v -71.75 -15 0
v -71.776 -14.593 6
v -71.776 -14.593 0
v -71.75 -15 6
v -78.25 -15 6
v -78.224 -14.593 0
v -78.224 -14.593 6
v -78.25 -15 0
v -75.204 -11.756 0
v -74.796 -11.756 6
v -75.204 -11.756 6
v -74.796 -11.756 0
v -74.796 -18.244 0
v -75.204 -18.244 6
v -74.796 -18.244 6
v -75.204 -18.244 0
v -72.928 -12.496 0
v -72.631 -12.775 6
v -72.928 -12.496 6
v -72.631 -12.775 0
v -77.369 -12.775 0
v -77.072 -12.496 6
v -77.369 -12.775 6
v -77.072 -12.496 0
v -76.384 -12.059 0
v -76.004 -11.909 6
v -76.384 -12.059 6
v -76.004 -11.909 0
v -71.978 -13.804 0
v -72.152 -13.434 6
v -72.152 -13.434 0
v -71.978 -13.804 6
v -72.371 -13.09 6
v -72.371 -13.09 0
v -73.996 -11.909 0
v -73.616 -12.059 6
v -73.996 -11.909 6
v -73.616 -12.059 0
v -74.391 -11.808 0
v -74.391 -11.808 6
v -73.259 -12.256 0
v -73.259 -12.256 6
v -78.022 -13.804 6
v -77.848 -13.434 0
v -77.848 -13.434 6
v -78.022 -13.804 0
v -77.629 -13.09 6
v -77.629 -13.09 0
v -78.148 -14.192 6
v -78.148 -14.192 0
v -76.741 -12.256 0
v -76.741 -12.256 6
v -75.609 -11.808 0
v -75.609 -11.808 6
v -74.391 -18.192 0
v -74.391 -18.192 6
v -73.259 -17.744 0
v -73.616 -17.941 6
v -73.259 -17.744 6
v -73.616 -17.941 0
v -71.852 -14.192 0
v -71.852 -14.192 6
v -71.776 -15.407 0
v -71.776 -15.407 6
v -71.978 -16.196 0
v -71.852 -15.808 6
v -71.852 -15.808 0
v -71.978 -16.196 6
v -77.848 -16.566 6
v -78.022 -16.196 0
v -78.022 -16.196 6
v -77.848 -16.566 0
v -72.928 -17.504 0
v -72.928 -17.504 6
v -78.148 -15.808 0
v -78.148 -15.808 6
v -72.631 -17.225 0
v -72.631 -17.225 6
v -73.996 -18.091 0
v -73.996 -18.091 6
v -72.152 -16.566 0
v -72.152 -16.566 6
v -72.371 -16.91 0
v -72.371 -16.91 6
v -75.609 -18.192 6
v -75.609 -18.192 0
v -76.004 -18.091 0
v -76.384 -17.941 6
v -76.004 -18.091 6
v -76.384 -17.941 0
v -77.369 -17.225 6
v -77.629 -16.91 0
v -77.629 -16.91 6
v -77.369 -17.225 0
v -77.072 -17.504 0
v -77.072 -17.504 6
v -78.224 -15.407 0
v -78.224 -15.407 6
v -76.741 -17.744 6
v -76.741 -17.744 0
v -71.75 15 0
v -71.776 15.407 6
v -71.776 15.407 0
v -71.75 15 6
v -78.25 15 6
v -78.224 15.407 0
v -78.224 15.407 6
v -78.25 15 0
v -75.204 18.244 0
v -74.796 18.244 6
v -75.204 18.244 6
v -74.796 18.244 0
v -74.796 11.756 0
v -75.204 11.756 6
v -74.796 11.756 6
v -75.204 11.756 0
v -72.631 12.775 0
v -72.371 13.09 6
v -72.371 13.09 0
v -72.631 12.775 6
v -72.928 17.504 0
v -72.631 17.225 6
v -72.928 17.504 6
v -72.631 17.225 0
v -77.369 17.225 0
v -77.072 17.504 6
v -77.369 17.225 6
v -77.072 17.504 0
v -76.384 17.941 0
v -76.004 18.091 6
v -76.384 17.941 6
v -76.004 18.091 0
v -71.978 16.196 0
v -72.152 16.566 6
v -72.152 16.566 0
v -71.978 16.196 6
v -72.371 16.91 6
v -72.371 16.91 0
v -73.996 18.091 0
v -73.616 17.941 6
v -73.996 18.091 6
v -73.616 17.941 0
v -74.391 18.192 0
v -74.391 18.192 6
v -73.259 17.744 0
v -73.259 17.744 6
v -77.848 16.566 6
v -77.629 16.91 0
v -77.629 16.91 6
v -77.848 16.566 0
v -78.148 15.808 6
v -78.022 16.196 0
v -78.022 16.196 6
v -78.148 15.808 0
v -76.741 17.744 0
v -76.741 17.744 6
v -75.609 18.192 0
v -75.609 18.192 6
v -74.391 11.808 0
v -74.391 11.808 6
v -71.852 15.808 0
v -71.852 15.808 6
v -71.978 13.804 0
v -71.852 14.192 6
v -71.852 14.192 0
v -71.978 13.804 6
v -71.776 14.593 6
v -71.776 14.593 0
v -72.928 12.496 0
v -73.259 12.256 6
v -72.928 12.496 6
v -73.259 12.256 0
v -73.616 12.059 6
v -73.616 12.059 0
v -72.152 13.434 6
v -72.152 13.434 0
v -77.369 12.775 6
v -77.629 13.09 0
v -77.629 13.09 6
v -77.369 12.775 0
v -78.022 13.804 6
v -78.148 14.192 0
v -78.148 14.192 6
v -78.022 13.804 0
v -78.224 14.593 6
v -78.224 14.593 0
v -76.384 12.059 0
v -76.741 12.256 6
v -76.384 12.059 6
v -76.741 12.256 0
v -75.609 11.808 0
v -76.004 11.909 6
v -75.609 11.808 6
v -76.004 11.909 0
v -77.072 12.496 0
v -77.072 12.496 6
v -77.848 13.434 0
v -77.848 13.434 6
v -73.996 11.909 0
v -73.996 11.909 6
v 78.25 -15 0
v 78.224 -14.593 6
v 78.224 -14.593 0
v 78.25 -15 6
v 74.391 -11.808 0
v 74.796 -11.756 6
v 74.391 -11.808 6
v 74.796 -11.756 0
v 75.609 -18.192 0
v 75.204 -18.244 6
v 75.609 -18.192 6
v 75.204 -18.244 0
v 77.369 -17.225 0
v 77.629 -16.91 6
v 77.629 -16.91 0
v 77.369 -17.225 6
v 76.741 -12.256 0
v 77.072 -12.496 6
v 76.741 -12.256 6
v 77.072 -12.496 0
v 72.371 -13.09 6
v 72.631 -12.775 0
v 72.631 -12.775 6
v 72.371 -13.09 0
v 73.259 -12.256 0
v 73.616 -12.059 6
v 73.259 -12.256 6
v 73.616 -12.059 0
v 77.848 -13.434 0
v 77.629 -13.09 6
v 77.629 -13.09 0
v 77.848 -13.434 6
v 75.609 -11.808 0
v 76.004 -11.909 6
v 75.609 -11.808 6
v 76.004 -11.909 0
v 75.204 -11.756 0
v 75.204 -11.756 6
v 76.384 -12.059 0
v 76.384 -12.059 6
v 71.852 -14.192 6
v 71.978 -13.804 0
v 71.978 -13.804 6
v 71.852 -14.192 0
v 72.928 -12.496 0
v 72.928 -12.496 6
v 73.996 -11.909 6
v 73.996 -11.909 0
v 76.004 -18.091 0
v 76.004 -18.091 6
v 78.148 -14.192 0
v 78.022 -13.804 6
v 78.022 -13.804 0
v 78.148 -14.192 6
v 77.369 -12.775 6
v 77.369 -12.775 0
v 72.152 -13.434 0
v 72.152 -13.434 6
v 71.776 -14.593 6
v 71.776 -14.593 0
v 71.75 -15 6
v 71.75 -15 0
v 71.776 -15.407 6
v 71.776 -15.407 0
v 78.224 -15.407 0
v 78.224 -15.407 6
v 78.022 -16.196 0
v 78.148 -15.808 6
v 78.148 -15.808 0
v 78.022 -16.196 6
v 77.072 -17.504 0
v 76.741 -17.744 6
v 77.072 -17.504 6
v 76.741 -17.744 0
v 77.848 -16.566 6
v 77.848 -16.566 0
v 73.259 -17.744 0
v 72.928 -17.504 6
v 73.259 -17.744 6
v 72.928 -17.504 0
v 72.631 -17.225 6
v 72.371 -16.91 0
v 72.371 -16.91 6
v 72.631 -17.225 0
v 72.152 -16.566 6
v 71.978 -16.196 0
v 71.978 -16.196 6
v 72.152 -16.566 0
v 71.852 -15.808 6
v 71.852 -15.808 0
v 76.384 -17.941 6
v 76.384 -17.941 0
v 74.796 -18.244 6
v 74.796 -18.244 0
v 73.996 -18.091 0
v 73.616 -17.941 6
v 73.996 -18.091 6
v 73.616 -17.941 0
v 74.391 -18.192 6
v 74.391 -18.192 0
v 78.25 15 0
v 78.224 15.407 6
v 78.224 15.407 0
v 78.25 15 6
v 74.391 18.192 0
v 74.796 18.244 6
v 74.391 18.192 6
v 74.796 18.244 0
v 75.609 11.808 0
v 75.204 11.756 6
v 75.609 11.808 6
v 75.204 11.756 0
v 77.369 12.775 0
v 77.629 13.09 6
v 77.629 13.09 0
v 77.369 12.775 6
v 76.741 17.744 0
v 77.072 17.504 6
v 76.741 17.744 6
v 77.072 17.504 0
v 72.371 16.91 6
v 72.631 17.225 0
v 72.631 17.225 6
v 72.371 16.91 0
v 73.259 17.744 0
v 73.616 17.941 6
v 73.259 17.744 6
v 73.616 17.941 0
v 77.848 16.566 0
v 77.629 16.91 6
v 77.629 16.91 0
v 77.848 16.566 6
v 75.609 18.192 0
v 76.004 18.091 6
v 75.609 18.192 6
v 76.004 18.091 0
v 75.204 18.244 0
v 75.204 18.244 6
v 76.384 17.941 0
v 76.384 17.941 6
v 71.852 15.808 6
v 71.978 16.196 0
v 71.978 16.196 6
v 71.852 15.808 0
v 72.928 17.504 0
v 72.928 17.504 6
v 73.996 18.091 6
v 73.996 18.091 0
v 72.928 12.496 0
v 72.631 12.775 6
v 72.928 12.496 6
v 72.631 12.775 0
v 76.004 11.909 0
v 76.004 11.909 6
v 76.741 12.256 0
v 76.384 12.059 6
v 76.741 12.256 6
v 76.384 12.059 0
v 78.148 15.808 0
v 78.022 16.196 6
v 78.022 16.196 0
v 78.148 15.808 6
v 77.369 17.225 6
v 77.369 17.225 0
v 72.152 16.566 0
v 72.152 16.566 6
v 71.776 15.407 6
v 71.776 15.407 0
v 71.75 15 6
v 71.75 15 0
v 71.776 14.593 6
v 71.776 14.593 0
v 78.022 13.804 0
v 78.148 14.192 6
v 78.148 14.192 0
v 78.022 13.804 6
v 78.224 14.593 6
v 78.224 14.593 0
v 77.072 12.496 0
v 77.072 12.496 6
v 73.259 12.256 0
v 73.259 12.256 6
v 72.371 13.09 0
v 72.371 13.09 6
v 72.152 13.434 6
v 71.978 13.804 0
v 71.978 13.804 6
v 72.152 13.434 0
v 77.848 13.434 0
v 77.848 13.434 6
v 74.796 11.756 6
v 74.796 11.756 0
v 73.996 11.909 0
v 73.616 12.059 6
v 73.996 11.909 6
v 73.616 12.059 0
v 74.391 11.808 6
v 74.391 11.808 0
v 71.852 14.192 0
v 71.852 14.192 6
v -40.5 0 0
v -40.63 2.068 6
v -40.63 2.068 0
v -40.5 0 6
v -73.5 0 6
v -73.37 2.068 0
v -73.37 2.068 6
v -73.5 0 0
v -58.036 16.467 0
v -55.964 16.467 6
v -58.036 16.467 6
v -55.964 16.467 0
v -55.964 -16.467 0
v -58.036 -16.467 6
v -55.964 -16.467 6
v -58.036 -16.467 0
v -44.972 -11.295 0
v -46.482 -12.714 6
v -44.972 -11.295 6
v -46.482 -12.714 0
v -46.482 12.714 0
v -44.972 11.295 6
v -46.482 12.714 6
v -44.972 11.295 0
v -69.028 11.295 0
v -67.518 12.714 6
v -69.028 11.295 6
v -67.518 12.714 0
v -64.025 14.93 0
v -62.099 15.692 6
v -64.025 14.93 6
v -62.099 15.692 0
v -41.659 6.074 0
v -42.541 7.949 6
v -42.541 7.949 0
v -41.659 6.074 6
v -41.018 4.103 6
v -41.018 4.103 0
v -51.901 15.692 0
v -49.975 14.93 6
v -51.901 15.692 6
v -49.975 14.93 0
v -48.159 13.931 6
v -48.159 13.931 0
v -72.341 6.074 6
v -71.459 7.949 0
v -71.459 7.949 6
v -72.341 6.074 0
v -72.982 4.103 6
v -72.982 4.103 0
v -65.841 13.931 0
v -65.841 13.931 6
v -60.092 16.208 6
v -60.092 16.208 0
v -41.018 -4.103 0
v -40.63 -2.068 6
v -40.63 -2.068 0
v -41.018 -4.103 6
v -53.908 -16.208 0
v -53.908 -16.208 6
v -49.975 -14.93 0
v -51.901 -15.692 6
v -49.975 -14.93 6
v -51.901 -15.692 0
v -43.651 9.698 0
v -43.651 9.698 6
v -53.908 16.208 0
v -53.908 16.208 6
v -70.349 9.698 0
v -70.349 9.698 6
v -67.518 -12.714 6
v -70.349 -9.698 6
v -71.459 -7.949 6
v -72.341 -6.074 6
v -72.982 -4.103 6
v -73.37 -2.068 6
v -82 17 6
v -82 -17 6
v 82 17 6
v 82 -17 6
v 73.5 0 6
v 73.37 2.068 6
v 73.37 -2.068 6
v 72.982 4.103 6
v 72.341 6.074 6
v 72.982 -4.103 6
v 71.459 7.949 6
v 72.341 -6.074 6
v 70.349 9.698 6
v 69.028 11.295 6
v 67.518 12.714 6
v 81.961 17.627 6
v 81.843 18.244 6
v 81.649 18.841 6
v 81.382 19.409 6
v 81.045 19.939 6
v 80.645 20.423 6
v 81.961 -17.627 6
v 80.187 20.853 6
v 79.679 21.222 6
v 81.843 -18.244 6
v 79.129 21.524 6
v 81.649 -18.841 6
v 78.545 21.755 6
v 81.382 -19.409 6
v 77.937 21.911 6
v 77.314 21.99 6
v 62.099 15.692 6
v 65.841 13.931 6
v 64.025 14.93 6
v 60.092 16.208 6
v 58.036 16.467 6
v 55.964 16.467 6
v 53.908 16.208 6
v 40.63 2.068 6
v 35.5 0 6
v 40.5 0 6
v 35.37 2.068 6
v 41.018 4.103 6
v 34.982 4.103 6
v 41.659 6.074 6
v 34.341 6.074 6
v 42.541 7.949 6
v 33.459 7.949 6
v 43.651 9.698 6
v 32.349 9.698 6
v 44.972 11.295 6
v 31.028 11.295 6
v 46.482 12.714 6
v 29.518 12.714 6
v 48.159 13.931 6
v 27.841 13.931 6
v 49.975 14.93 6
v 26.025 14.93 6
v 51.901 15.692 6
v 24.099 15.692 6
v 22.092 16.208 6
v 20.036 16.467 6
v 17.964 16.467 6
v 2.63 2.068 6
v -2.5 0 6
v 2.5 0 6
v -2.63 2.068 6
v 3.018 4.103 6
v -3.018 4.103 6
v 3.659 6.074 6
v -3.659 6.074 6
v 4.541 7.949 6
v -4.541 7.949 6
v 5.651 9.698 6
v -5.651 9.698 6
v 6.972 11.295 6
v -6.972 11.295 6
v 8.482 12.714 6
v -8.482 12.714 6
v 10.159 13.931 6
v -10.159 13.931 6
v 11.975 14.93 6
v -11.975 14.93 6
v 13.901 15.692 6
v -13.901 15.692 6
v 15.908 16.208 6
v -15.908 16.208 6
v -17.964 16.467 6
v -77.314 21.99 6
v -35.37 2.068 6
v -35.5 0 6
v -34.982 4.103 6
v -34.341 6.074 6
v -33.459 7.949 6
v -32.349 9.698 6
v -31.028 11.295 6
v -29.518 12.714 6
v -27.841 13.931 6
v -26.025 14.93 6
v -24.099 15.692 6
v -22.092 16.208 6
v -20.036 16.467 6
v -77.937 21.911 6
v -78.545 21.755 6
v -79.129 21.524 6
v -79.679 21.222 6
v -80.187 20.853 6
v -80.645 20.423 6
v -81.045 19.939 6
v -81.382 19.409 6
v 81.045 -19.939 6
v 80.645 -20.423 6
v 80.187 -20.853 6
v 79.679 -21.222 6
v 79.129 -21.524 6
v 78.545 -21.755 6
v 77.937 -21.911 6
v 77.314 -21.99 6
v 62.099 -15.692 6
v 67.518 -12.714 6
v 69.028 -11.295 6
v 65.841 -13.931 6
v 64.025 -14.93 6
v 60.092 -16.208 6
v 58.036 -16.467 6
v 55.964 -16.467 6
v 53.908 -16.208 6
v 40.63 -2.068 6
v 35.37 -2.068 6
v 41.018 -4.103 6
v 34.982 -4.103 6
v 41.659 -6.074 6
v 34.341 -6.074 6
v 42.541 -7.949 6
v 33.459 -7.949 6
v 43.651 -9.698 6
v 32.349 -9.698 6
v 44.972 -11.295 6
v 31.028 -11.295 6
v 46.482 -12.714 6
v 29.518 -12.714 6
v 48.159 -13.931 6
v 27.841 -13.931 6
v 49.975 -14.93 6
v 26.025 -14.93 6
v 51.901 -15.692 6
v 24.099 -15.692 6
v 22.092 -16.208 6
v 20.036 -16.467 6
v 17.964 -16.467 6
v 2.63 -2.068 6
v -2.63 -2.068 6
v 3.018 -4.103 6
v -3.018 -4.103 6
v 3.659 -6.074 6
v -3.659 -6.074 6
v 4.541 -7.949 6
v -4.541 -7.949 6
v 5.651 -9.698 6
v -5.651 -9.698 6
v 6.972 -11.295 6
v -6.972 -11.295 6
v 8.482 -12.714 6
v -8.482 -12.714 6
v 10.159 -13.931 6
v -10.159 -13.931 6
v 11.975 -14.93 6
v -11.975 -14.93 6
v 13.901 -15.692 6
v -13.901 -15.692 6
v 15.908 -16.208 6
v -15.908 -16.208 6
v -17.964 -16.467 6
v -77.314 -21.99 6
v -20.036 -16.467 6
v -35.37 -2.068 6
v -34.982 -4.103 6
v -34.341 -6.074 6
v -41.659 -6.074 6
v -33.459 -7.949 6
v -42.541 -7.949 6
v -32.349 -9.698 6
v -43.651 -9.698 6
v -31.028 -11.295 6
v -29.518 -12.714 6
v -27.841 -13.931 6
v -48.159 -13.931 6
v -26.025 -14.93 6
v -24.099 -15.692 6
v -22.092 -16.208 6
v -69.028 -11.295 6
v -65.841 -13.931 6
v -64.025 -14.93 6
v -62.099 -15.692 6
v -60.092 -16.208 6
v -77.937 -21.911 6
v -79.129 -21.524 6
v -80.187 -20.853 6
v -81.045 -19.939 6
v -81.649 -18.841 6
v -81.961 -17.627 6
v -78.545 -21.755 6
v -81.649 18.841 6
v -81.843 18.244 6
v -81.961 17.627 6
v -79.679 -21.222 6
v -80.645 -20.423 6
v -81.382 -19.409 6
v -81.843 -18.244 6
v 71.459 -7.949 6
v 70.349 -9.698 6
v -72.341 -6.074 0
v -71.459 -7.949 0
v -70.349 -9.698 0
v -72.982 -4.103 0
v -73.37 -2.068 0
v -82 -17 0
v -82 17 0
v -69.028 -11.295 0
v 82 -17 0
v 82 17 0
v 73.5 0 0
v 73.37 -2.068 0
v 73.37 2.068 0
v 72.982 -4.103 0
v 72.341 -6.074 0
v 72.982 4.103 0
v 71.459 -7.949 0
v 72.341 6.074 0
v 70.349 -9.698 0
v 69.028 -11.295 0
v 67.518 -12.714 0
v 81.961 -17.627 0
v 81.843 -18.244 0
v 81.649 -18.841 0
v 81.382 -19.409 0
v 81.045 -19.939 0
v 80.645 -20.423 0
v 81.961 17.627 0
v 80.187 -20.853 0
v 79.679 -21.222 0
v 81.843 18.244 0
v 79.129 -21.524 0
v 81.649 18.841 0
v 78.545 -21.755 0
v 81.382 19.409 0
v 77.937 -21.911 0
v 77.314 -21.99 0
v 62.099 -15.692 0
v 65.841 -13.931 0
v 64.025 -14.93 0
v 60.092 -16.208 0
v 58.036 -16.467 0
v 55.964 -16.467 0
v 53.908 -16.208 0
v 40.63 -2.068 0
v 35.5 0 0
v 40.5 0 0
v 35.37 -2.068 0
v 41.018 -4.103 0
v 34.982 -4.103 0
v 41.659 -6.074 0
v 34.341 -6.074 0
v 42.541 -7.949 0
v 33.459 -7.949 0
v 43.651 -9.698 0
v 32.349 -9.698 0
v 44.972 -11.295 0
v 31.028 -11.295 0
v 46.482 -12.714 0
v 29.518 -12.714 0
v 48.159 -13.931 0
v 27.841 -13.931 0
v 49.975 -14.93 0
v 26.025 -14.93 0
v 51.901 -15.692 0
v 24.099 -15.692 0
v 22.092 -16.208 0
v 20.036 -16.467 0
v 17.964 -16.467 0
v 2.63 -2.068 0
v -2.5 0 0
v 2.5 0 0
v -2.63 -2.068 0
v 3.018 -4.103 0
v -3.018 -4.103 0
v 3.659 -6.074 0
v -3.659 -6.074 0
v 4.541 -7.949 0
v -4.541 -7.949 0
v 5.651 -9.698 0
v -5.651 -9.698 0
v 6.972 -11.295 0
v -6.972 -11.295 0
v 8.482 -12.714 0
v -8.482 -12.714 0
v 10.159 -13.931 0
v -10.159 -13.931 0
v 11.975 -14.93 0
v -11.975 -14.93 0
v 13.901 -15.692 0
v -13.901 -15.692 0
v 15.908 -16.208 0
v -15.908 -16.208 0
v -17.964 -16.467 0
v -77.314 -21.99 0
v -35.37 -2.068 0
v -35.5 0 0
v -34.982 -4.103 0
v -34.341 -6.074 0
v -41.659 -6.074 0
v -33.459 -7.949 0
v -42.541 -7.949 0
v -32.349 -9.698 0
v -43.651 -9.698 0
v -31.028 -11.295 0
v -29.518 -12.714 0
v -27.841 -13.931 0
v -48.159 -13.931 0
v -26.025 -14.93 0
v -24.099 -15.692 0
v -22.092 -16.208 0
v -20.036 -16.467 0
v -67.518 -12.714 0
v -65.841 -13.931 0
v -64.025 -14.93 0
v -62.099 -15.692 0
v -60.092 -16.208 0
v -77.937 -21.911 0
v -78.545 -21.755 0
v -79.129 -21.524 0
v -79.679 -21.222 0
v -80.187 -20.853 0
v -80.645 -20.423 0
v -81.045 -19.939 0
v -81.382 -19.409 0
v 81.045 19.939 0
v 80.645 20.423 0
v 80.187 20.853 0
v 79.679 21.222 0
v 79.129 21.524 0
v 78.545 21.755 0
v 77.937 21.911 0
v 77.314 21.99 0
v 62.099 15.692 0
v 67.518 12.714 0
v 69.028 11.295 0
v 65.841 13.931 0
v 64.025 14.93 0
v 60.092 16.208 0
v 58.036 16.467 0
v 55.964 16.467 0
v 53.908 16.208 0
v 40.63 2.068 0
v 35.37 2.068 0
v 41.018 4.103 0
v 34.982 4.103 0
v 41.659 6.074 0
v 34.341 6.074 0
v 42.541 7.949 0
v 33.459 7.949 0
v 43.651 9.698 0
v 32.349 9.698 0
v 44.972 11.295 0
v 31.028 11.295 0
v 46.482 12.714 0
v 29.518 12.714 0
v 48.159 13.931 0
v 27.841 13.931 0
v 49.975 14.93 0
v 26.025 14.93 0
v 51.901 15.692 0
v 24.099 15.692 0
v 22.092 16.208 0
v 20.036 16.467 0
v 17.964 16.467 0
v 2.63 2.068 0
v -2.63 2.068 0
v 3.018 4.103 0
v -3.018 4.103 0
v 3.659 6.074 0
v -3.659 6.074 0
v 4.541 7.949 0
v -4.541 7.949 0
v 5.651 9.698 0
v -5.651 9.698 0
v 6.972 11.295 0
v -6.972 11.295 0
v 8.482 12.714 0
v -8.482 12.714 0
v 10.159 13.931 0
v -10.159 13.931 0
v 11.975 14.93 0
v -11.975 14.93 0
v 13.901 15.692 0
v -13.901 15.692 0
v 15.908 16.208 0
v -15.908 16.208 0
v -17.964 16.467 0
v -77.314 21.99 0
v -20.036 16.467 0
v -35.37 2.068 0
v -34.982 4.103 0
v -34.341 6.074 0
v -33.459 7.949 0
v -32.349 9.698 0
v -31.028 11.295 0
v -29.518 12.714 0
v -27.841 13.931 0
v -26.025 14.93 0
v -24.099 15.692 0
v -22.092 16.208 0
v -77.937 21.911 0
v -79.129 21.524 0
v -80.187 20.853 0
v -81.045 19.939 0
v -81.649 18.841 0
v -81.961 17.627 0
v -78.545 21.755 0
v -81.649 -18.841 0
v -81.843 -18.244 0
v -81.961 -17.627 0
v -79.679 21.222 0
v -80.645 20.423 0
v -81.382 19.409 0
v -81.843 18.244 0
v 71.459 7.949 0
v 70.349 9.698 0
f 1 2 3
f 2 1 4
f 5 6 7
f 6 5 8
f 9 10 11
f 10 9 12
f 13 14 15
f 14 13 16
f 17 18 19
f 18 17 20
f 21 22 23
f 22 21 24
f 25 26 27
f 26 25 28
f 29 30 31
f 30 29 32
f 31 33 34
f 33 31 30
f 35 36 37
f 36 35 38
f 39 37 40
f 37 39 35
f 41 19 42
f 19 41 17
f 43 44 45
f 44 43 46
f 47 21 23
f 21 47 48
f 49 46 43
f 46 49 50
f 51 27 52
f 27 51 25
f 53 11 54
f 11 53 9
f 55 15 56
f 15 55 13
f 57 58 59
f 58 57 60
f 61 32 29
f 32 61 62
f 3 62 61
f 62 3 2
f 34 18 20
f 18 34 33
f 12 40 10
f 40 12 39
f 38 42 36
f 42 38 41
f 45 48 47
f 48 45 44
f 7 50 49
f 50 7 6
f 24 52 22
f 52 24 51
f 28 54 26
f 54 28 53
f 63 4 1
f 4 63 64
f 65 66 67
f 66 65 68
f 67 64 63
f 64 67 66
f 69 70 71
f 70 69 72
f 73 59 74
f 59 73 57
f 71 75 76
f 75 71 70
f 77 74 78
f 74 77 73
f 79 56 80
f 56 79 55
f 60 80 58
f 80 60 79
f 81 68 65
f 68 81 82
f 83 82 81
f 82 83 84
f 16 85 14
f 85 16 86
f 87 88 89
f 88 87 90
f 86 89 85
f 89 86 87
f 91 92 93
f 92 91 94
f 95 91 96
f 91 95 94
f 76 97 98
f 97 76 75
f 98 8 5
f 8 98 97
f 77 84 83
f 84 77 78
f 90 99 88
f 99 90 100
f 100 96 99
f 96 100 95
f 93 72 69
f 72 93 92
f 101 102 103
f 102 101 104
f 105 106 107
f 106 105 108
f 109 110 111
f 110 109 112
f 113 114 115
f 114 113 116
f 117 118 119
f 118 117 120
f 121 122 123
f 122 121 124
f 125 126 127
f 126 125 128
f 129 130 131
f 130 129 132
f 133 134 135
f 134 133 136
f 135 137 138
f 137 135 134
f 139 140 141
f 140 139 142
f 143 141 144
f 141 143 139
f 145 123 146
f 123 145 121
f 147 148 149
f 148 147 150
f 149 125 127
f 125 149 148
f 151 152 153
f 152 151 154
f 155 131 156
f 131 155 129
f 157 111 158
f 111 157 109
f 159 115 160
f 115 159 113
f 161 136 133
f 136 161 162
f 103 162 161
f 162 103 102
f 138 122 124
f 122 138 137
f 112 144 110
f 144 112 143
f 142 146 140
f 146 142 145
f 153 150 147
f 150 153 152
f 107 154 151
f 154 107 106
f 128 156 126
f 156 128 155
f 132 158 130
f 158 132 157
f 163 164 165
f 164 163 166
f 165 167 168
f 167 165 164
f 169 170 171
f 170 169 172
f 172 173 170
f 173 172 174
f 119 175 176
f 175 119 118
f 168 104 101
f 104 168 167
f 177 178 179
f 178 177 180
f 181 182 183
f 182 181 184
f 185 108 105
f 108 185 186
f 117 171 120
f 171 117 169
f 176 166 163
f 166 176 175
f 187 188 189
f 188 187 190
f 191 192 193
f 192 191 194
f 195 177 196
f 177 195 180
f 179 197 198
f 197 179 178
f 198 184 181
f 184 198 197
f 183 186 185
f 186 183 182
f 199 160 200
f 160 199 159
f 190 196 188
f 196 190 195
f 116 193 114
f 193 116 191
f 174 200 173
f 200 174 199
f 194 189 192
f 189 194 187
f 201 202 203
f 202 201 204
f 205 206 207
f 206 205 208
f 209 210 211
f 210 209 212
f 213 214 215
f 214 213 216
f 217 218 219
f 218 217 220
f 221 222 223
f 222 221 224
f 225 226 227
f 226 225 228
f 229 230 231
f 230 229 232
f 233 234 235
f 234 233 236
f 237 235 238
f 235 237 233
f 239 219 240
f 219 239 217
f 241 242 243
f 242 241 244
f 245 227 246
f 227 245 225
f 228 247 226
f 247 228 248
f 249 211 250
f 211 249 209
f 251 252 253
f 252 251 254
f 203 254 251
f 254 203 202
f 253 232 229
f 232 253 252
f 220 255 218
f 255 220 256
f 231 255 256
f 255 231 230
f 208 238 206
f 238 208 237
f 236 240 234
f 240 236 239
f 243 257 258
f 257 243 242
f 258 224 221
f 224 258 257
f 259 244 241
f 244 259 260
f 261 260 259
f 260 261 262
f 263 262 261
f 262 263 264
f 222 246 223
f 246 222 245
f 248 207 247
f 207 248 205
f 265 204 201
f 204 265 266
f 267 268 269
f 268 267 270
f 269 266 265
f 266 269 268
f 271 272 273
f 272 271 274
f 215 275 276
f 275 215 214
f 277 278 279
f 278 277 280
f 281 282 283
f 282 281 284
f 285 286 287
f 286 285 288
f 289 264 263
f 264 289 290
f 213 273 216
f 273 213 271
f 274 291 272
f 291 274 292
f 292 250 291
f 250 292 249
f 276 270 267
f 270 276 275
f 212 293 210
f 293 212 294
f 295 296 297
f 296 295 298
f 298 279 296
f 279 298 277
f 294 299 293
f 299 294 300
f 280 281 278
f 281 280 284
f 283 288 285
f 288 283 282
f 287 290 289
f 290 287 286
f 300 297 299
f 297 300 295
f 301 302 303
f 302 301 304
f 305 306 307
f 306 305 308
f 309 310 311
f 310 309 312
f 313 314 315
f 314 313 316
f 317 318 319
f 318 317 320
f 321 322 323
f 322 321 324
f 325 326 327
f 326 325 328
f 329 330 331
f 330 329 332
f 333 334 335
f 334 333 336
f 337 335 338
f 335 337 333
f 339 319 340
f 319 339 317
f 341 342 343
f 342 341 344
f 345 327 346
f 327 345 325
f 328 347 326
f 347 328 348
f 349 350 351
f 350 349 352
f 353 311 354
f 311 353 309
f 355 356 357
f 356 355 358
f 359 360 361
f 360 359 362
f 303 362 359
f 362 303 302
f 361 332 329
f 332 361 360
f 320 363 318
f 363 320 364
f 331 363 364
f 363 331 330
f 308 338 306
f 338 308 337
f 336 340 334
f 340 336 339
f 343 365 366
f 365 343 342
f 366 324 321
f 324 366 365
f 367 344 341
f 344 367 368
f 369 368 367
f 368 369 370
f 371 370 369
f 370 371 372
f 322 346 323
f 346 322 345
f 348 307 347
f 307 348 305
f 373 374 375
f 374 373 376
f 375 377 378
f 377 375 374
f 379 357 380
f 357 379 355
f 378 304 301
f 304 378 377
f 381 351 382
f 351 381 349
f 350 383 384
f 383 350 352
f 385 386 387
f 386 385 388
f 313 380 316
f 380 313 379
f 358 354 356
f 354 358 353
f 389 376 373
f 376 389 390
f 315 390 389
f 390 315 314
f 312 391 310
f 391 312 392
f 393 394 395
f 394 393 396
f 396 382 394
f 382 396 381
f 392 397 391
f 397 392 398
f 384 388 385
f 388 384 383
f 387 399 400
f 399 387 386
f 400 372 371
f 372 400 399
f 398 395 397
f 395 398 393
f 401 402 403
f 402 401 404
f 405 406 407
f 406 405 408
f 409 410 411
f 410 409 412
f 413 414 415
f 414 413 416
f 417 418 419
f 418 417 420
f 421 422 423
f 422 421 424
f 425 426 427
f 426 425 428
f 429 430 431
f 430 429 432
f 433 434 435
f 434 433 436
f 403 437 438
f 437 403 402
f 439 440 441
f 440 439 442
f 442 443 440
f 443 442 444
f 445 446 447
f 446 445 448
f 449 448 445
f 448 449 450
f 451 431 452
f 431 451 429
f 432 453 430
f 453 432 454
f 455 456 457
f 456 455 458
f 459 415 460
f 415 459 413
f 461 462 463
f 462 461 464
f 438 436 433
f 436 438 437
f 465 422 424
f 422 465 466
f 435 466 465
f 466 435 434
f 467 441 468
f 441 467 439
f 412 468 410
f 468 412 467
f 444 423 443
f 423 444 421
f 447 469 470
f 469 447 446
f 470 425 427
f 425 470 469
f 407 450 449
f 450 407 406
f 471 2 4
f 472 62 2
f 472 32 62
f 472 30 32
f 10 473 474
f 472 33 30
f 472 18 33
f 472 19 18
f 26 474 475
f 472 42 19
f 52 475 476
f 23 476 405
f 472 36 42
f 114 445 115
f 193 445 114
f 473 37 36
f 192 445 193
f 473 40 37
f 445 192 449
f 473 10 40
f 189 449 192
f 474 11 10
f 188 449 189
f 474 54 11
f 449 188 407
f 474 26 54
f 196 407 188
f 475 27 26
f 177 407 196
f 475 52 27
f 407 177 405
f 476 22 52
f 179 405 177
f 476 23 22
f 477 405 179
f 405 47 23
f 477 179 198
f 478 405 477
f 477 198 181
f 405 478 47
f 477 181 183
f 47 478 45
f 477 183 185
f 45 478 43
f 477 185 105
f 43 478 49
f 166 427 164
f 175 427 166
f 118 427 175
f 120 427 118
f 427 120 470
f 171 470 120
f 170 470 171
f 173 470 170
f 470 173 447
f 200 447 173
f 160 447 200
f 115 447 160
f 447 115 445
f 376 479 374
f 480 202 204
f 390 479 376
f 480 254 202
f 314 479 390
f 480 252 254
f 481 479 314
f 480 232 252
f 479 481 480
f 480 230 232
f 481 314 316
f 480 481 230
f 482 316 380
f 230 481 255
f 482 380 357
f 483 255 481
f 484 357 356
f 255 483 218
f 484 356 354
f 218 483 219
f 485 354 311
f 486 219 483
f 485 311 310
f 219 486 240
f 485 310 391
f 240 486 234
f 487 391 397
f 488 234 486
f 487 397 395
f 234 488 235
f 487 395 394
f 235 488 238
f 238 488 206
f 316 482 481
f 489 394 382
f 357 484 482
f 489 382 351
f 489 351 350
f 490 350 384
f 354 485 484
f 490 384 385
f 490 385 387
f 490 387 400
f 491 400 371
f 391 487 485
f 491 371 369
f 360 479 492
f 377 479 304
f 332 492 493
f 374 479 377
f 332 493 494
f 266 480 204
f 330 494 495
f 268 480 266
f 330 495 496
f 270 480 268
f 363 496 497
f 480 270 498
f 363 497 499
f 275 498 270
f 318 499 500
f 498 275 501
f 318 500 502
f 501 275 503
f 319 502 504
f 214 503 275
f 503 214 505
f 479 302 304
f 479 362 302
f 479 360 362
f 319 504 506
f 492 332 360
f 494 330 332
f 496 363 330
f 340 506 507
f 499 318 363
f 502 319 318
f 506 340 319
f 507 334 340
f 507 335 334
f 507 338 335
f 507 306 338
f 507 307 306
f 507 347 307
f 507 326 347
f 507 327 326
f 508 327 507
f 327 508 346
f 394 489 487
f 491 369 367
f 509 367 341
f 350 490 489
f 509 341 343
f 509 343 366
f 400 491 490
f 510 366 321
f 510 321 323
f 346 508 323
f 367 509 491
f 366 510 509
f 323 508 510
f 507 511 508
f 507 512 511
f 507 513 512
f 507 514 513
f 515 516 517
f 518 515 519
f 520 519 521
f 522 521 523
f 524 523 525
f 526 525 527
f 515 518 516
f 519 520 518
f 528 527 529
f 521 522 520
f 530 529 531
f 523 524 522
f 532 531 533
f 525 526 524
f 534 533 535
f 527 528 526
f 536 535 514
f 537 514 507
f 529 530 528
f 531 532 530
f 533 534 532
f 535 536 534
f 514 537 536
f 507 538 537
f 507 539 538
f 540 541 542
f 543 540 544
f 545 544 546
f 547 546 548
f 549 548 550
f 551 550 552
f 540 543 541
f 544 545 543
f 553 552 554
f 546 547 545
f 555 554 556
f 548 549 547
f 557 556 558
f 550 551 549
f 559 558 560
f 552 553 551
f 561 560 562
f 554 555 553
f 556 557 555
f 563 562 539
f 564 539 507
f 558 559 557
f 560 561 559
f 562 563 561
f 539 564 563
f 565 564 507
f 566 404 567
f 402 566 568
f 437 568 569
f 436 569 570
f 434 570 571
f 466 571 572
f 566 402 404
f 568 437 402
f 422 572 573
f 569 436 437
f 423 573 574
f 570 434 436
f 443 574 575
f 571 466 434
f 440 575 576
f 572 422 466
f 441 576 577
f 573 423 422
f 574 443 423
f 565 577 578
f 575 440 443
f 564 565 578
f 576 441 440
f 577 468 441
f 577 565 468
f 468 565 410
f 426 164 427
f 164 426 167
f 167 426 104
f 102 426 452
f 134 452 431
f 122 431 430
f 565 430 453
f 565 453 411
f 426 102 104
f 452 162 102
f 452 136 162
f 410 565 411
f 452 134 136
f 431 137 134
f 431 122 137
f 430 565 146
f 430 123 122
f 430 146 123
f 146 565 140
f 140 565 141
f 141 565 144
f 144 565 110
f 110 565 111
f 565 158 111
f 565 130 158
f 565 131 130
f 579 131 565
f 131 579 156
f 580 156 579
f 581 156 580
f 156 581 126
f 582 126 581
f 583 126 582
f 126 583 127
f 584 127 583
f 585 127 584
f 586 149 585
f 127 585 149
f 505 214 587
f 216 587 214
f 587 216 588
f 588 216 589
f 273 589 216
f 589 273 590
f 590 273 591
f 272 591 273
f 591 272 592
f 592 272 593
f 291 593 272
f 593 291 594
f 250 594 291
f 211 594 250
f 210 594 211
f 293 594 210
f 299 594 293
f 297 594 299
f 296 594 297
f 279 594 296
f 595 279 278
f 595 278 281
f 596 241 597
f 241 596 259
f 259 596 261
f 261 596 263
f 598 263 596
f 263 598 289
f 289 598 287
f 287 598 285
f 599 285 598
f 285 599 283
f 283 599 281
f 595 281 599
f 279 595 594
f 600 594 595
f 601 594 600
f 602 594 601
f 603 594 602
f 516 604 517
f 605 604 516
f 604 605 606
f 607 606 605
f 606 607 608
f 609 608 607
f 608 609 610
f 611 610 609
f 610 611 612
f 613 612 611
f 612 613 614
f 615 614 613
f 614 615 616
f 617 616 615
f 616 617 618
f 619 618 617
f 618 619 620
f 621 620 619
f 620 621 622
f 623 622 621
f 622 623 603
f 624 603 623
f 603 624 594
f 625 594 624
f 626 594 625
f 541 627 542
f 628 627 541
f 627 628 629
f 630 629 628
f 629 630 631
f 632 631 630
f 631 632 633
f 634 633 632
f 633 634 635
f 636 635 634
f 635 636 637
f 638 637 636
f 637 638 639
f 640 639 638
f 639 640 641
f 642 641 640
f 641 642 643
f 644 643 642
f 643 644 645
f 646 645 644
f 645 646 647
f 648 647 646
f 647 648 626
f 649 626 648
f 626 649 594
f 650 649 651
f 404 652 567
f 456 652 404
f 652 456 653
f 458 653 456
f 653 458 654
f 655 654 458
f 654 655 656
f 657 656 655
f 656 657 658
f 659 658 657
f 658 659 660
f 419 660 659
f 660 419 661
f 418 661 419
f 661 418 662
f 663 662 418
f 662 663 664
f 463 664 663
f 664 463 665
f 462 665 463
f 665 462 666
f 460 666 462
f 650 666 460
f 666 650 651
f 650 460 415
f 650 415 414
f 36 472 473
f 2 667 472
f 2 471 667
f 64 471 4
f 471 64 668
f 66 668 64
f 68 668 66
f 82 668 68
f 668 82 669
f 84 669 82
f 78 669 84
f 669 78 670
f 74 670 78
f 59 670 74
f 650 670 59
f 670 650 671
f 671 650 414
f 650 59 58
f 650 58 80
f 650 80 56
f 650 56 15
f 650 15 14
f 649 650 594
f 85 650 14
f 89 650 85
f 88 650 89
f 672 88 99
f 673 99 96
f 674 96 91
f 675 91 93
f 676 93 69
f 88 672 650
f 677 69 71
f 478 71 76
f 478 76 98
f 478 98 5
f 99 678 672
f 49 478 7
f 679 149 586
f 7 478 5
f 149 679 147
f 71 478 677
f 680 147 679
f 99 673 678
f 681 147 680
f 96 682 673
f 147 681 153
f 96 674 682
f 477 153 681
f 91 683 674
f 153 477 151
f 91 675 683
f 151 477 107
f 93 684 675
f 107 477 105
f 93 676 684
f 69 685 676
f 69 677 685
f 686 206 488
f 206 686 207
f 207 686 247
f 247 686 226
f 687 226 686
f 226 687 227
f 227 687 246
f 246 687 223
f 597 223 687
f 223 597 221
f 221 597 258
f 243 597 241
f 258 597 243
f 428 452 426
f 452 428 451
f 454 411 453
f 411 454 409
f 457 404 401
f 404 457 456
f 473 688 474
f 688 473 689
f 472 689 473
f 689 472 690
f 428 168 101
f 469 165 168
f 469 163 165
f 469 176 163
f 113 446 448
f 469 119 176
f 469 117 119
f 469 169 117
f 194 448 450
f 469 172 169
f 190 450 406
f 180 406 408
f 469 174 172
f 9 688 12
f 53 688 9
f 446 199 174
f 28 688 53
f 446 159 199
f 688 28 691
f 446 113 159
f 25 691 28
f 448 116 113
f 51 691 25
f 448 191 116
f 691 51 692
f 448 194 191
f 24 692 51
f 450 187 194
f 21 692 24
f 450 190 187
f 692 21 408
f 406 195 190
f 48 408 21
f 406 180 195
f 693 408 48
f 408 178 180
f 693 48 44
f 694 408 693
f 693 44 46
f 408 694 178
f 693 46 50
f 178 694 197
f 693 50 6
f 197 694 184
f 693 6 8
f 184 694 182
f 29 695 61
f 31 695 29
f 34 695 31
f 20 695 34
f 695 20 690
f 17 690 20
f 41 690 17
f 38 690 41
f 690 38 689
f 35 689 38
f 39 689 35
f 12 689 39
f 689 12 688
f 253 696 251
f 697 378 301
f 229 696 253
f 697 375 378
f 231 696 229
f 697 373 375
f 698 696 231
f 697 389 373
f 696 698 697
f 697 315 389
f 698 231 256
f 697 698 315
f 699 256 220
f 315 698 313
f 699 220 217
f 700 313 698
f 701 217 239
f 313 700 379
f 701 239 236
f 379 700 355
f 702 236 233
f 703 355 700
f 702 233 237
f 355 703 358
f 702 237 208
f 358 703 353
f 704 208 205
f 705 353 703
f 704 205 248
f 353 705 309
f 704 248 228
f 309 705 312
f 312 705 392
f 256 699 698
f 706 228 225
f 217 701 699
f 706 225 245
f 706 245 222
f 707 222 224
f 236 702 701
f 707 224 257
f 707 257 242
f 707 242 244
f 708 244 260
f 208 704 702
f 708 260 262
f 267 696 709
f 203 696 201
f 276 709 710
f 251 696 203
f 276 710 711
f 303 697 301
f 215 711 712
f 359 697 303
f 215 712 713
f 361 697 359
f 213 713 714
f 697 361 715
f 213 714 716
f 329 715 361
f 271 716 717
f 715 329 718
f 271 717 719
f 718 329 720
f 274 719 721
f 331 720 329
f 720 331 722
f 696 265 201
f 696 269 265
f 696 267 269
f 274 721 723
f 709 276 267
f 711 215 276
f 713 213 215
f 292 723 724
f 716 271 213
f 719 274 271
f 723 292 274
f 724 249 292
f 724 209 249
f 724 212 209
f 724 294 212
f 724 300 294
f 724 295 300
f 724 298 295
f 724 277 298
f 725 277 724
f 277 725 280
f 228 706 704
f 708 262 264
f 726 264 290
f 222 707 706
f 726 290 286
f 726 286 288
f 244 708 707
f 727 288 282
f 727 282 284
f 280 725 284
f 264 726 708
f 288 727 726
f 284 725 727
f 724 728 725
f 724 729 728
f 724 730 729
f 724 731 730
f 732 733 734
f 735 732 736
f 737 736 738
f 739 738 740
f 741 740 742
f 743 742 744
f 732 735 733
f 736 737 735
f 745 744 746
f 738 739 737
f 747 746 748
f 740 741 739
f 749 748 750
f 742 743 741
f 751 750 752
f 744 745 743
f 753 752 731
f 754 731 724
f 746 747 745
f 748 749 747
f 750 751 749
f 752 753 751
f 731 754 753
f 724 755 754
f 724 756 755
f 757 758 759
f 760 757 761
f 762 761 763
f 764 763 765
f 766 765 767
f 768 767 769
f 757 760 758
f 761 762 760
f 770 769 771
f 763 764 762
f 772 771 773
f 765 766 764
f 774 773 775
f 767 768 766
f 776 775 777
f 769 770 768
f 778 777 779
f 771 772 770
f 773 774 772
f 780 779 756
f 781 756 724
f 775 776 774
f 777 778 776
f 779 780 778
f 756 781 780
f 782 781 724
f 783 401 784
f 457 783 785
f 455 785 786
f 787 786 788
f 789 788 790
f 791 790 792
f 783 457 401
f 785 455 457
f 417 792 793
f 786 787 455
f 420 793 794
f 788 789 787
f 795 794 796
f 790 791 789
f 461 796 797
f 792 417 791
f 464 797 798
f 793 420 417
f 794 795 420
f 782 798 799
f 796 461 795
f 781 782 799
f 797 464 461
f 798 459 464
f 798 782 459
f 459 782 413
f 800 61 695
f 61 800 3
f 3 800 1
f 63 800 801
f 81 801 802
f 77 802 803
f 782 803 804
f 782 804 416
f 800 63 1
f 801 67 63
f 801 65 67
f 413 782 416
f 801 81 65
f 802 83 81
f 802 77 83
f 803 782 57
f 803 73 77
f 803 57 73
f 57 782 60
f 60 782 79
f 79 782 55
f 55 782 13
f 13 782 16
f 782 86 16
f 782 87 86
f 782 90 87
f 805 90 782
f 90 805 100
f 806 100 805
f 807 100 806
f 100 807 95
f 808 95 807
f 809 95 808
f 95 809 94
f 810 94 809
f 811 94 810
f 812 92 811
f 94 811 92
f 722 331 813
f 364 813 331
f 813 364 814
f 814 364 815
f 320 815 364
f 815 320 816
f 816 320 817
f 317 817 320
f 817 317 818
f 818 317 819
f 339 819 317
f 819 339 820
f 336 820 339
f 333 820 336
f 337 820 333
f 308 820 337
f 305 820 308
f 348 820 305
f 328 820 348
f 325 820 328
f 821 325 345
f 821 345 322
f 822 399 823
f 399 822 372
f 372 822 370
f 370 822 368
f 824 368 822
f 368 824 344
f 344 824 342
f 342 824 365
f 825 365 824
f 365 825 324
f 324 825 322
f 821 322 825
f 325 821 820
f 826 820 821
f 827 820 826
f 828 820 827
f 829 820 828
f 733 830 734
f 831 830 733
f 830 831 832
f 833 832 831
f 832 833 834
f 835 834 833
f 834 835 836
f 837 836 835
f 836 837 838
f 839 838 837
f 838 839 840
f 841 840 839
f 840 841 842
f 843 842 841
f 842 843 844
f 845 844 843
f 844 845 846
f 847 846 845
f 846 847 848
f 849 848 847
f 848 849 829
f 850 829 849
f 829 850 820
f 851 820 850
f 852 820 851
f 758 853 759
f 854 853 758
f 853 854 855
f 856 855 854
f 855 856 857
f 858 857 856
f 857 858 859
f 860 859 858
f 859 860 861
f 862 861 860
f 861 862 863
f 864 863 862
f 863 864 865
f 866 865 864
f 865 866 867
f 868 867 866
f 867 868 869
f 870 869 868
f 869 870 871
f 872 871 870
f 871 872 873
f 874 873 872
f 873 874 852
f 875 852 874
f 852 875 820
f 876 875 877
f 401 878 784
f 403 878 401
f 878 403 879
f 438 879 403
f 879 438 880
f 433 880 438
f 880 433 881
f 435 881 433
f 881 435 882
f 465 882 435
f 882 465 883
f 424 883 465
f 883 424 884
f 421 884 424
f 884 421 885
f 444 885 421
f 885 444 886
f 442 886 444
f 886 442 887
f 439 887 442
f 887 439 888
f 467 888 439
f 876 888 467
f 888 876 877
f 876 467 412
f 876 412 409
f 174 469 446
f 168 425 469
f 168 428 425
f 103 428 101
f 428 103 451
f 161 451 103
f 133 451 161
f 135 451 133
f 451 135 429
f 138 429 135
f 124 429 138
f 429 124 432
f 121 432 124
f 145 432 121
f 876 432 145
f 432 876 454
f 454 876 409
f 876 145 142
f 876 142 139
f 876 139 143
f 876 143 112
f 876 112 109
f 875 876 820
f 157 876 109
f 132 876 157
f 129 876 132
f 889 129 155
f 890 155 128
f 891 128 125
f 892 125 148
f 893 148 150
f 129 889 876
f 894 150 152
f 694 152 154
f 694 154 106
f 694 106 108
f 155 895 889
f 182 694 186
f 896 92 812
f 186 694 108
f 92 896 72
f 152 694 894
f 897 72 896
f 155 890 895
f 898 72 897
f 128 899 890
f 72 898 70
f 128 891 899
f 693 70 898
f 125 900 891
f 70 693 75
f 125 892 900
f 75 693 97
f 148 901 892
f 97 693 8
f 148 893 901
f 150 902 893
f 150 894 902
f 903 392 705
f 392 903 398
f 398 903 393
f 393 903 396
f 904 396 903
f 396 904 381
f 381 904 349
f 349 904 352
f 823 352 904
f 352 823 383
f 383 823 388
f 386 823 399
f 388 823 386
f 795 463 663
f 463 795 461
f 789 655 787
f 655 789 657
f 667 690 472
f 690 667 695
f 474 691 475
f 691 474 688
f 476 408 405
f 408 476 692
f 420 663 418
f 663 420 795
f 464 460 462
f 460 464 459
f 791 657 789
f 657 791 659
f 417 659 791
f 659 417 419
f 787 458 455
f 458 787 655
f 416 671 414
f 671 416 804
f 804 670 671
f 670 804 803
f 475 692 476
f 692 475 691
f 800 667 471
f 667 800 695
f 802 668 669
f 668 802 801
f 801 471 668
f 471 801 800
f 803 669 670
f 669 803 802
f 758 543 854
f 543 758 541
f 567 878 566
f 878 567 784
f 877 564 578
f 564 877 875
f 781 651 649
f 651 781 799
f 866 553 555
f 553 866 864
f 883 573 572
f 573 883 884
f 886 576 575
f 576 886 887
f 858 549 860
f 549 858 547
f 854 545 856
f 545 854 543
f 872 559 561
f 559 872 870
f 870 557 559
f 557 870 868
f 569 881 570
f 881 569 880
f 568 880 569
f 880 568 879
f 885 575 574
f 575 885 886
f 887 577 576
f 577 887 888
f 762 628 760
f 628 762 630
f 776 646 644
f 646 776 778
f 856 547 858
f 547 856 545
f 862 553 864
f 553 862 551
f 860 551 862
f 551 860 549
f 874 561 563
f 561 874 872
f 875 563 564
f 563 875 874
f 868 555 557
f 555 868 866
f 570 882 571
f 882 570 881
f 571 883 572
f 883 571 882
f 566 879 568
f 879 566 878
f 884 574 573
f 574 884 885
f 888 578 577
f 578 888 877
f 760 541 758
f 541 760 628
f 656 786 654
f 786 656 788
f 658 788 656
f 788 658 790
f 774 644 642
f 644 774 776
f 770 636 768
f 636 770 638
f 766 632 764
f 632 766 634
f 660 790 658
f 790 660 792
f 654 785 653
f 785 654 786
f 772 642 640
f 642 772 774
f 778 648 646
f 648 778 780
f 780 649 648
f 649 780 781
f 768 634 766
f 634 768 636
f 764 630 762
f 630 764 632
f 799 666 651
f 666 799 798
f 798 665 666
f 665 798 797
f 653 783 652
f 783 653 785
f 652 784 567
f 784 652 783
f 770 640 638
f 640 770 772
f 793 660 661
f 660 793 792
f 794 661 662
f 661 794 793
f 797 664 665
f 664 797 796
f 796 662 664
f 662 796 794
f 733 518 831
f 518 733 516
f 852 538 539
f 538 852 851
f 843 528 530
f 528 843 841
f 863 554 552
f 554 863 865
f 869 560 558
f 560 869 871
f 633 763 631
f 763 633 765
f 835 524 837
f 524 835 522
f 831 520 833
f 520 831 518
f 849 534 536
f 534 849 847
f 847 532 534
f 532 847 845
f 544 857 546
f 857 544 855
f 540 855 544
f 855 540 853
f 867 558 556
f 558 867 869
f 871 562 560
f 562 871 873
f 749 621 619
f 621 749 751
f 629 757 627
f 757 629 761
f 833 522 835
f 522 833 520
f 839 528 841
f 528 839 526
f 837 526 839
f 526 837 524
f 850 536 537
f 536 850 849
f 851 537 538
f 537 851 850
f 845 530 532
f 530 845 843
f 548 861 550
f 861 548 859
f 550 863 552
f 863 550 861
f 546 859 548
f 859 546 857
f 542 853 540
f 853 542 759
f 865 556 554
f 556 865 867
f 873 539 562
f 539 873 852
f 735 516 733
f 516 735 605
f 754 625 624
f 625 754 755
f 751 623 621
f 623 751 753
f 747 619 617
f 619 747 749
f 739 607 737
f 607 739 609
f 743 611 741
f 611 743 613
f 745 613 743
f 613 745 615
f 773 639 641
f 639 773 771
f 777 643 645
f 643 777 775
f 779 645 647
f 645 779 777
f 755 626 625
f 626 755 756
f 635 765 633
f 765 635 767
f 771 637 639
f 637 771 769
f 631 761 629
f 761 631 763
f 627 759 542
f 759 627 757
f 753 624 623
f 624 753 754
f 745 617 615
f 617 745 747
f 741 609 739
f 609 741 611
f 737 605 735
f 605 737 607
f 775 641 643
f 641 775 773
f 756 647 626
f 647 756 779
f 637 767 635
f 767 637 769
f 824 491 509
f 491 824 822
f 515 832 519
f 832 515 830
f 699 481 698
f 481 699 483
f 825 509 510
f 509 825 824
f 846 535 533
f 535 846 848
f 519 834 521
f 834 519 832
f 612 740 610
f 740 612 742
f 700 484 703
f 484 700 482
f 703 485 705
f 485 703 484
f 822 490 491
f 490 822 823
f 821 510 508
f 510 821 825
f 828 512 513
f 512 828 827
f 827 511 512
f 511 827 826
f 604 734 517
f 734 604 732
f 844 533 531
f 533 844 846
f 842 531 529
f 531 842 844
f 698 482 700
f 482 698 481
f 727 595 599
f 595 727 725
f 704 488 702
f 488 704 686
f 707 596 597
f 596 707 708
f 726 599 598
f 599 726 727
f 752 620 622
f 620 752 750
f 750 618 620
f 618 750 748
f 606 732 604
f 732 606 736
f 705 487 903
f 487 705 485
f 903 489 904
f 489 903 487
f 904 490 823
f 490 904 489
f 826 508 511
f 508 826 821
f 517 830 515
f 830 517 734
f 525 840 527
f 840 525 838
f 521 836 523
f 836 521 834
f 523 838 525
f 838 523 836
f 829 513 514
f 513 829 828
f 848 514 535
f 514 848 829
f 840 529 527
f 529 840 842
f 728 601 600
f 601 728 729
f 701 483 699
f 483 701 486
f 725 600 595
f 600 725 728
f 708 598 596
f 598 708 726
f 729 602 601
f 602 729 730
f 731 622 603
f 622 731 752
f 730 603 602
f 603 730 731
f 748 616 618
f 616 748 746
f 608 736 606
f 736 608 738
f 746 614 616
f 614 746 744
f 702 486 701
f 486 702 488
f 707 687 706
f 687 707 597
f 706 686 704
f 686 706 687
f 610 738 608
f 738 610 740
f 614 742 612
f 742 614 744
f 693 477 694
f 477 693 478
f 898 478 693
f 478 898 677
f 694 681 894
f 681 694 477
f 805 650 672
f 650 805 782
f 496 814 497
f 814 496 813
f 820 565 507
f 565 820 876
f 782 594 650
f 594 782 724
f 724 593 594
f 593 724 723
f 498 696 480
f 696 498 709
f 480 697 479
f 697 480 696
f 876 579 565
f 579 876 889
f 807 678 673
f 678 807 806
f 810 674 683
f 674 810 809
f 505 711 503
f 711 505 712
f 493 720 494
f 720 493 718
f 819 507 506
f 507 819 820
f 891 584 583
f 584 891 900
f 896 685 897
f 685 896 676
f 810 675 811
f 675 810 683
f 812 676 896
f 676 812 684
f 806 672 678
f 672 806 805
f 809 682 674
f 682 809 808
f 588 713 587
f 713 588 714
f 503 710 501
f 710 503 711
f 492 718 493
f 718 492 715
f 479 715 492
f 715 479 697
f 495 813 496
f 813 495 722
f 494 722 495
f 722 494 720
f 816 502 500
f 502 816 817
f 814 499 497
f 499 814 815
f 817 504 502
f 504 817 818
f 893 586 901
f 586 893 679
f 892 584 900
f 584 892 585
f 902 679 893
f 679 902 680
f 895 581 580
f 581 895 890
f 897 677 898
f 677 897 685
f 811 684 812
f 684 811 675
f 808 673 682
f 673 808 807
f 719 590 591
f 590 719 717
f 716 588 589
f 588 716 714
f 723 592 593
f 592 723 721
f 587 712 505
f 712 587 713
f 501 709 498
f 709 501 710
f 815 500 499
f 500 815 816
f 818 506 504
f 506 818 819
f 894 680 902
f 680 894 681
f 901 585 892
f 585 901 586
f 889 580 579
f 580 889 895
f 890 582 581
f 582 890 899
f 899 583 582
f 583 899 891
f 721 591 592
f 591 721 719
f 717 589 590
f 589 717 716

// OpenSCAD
$fn = 50;


difference() {
	union() {
		hull() {
			translate(v = [-77.0000000000, 17.0000000000, 0]) {
				cylinder(h = 6, r = 5);
			}
			translate(v = [77.0000000000, 17.0000000000, 0]) {
				cylinder(h = 6, r = 5);
			}
			translate(v = [-77.0000000000, -17.0000000000, 0]) {
				cylinder(h = 6, r = 5);
			}
			translate(v = [77.0000000000, -17.0000000000, 0]) {
				cylinder(h = 6, r = 5);
			}
		}
	}
	union() {
		#translate(v = [-75.0000000000, -15.0000000000, -100.0000000000]) {
			cylinder(h = 200, r = 3.2500000000);
		}
		#translate(v = [-75.0000000000, 15.0000000000, -100.0000000000]) {
			cylinder(h = 200, r = 3.2500000000);
		}
		#translate(v = [75.0000000000, -15.0000000000, -100.0000000000]) {
			cylinder(h = 200, r = 3.2500000000);
		}
		#translate(v = [75.0000000000, 15.0000000000, -100.0000000000]) {
			cylinder(h = 200, r = 3.2500000000);
		}
		#translate(v = [-57.0000000000, 0, 0]) {
			cylinder(h = 6, r = 16.5000000000);
		}
		#translate(v = [-19.0000000000, 0, 0]) {
			cylinder(h = 6, r = 16.5000000000);
		}
		#translate(v = [19.0000000000, 0, 0]) {
			cylinder(h = 6, r = 16.5000000000);
		}
		#translate(v = [57.0000000000, 0, 0]) {
			cylinder(h = 6, r = 16.5000000000);
		}
	}
}
